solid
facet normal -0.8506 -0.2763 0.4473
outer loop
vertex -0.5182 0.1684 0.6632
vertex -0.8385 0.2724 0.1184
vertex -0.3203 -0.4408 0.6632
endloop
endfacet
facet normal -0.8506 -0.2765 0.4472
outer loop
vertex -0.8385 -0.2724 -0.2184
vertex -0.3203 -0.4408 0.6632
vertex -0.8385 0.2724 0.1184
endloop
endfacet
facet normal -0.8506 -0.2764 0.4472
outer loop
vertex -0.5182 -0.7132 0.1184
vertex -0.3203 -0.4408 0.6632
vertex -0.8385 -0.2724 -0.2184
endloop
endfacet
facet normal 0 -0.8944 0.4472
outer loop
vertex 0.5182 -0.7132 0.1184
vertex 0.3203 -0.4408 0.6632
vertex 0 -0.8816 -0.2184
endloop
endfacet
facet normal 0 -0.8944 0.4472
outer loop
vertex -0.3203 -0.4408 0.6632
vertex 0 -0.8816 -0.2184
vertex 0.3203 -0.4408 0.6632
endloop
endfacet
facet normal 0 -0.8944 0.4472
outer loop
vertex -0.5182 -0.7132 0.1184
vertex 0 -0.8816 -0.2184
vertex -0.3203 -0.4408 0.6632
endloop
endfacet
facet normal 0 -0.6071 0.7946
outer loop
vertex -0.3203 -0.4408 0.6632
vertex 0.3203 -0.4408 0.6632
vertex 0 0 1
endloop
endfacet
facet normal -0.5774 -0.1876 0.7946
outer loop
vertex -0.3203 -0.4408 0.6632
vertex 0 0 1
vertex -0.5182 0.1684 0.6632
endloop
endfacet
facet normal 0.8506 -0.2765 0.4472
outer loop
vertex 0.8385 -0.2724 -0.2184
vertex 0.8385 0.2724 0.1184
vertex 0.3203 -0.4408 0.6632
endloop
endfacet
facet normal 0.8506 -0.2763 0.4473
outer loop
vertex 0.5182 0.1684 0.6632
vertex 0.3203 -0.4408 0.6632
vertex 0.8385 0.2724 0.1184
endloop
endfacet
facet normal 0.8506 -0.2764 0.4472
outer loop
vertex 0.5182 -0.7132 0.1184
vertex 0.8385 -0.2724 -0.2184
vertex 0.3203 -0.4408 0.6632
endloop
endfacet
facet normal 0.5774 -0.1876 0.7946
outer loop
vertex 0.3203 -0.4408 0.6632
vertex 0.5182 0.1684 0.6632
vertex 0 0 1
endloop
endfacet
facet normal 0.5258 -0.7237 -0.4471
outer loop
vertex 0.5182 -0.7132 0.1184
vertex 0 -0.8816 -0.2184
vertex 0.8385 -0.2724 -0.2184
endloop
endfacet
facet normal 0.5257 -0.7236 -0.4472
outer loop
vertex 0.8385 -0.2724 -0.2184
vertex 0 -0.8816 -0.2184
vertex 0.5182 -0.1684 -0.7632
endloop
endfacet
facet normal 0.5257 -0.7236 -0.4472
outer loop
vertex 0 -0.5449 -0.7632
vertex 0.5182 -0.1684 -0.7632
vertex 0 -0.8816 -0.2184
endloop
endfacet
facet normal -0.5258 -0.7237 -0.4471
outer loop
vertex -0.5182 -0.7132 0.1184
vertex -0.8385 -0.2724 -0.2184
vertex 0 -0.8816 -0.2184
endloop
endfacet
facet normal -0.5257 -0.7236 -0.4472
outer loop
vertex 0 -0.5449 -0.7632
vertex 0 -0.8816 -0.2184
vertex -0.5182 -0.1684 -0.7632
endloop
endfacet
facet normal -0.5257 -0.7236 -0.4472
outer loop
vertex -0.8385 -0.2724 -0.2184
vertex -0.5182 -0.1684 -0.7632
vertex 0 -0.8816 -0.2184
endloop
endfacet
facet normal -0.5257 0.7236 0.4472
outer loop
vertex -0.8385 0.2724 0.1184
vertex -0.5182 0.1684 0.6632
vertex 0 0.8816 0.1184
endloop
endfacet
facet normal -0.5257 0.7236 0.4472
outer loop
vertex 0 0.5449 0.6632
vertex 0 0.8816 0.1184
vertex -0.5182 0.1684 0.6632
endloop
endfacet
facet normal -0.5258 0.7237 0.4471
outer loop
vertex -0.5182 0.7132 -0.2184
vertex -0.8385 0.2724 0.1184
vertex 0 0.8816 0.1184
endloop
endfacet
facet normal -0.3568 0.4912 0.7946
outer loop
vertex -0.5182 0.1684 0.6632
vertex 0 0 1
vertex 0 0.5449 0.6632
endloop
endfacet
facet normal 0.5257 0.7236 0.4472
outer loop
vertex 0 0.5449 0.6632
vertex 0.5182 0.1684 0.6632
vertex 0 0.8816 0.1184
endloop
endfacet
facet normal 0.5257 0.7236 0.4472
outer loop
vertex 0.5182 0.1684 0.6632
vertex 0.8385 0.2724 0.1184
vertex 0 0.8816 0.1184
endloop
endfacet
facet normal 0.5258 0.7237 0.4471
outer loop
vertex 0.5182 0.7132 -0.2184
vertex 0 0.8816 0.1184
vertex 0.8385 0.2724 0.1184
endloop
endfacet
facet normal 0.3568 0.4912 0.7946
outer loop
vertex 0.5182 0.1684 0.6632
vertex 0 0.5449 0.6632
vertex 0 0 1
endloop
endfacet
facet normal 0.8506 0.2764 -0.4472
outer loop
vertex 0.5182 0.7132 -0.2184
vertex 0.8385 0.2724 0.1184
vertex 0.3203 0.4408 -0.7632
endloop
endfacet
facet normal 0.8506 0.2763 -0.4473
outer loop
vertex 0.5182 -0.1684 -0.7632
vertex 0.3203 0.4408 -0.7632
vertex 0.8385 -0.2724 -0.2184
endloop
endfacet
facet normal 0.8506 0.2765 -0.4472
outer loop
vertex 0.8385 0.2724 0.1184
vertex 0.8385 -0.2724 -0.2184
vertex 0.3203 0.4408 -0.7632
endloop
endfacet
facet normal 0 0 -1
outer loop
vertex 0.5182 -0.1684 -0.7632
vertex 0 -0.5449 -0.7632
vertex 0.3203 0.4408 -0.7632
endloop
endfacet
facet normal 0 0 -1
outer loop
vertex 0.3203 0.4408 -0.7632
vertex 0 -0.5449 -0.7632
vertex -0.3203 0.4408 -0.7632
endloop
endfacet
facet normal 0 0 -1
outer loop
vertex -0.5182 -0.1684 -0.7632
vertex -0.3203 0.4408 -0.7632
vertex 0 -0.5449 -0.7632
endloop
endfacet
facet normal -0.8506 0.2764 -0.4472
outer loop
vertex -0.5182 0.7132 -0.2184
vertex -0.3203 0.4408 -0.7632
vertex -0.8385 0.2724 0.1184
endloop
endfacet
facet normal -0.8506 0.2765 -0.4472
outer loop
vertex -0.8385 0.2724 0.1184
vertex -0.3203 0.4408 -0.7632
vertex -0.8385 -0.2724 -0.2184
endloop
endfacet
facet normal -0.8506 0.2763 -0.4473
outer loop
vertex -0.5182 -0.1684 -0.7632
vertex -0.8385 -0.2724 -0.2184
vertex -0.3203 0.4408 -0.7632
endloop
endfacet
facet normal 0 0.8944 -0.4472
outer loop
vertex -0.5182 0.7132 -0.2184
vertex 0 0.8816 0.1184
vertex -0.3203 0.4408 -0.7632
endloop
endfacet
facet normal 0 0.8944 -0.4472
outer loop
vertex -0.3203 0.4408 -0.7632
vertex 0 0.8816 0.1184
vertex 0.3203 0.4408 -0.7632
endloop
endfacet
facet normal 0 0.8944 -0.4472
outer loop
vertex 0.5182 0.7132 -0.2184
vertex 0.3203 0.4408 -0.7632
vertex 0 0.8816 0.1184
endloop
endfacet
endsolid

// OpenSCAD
polyhedron( points = [[-0.320268908448364, -0.440812335362081, 0.663249341181041], [0.320268908495653, -0.440812335362081, 0.663249341181041], [0.518205979477367, -0.713249341243194, 0.118375329358584], [1.10560554191095e-11, -0.881624670644919, -0.21837532948209], [-0.518205979391074, -0.713249341231942, 0.118375329381087], [-0.518205979415537, 0.168375329461952, 0.663249341181041], [0.518205979364972, 0.168375329461952, 0.663249341181041], [0.838474887904154, -0.272437005894041, -0.218375329509114], [-6.89810615517778e-11, -0.544874011775685, -0.763249341205452], [-0.838474887832018, -0.272437005775525, -0.218375329460299], [-0.838474887816899, 0.272437005964807, 0.118375329433498], [-5.55201801180461e-11, 0.544874011834486, 0.663249341181041], [0.838474887873997, 0.272437005847115, 0.118375329363218], [0.518205979354031, -0.168375329406615, -0.763249341273593], [-0.518205979517384, -0.16837532945087, -0.763249341059563], [-0.518205979219885, 0.713249341225699, -0.218375329352573], [2.65088253009173e-10, 0.881624670581574, 0.118375329555704], [0.518205979262703, 0.713249341089174, -0.218375329447238], [0.320268908330207, 0.440812335370253, -0.763249341169826], [-0.320268908613811, 0.440812335285388, -0.763249341037548], [4.0247954416917e-11, 2.45543072510398e-11, 1.0]], faces = [[0, 5, 10, 9, 4], [0, 4, 3, 2, 1], [0, 1, 20], [0, 20, 5], [1, 2, 7, 12, 6], [1, 6, 20], [2, 3, 8, 13, 7], [3, 4, 9, 14, 8], [5, 11, 16, 15, 10], [5, 20, 11], [6, 12, 17, 16, 11], [6, 11, 20], [7, 13, 18, 17, 12], [8, 14, 19, 18, 13], [9, 10, 15, 19, 14], [15, 16, 17, 18, 19]]);
